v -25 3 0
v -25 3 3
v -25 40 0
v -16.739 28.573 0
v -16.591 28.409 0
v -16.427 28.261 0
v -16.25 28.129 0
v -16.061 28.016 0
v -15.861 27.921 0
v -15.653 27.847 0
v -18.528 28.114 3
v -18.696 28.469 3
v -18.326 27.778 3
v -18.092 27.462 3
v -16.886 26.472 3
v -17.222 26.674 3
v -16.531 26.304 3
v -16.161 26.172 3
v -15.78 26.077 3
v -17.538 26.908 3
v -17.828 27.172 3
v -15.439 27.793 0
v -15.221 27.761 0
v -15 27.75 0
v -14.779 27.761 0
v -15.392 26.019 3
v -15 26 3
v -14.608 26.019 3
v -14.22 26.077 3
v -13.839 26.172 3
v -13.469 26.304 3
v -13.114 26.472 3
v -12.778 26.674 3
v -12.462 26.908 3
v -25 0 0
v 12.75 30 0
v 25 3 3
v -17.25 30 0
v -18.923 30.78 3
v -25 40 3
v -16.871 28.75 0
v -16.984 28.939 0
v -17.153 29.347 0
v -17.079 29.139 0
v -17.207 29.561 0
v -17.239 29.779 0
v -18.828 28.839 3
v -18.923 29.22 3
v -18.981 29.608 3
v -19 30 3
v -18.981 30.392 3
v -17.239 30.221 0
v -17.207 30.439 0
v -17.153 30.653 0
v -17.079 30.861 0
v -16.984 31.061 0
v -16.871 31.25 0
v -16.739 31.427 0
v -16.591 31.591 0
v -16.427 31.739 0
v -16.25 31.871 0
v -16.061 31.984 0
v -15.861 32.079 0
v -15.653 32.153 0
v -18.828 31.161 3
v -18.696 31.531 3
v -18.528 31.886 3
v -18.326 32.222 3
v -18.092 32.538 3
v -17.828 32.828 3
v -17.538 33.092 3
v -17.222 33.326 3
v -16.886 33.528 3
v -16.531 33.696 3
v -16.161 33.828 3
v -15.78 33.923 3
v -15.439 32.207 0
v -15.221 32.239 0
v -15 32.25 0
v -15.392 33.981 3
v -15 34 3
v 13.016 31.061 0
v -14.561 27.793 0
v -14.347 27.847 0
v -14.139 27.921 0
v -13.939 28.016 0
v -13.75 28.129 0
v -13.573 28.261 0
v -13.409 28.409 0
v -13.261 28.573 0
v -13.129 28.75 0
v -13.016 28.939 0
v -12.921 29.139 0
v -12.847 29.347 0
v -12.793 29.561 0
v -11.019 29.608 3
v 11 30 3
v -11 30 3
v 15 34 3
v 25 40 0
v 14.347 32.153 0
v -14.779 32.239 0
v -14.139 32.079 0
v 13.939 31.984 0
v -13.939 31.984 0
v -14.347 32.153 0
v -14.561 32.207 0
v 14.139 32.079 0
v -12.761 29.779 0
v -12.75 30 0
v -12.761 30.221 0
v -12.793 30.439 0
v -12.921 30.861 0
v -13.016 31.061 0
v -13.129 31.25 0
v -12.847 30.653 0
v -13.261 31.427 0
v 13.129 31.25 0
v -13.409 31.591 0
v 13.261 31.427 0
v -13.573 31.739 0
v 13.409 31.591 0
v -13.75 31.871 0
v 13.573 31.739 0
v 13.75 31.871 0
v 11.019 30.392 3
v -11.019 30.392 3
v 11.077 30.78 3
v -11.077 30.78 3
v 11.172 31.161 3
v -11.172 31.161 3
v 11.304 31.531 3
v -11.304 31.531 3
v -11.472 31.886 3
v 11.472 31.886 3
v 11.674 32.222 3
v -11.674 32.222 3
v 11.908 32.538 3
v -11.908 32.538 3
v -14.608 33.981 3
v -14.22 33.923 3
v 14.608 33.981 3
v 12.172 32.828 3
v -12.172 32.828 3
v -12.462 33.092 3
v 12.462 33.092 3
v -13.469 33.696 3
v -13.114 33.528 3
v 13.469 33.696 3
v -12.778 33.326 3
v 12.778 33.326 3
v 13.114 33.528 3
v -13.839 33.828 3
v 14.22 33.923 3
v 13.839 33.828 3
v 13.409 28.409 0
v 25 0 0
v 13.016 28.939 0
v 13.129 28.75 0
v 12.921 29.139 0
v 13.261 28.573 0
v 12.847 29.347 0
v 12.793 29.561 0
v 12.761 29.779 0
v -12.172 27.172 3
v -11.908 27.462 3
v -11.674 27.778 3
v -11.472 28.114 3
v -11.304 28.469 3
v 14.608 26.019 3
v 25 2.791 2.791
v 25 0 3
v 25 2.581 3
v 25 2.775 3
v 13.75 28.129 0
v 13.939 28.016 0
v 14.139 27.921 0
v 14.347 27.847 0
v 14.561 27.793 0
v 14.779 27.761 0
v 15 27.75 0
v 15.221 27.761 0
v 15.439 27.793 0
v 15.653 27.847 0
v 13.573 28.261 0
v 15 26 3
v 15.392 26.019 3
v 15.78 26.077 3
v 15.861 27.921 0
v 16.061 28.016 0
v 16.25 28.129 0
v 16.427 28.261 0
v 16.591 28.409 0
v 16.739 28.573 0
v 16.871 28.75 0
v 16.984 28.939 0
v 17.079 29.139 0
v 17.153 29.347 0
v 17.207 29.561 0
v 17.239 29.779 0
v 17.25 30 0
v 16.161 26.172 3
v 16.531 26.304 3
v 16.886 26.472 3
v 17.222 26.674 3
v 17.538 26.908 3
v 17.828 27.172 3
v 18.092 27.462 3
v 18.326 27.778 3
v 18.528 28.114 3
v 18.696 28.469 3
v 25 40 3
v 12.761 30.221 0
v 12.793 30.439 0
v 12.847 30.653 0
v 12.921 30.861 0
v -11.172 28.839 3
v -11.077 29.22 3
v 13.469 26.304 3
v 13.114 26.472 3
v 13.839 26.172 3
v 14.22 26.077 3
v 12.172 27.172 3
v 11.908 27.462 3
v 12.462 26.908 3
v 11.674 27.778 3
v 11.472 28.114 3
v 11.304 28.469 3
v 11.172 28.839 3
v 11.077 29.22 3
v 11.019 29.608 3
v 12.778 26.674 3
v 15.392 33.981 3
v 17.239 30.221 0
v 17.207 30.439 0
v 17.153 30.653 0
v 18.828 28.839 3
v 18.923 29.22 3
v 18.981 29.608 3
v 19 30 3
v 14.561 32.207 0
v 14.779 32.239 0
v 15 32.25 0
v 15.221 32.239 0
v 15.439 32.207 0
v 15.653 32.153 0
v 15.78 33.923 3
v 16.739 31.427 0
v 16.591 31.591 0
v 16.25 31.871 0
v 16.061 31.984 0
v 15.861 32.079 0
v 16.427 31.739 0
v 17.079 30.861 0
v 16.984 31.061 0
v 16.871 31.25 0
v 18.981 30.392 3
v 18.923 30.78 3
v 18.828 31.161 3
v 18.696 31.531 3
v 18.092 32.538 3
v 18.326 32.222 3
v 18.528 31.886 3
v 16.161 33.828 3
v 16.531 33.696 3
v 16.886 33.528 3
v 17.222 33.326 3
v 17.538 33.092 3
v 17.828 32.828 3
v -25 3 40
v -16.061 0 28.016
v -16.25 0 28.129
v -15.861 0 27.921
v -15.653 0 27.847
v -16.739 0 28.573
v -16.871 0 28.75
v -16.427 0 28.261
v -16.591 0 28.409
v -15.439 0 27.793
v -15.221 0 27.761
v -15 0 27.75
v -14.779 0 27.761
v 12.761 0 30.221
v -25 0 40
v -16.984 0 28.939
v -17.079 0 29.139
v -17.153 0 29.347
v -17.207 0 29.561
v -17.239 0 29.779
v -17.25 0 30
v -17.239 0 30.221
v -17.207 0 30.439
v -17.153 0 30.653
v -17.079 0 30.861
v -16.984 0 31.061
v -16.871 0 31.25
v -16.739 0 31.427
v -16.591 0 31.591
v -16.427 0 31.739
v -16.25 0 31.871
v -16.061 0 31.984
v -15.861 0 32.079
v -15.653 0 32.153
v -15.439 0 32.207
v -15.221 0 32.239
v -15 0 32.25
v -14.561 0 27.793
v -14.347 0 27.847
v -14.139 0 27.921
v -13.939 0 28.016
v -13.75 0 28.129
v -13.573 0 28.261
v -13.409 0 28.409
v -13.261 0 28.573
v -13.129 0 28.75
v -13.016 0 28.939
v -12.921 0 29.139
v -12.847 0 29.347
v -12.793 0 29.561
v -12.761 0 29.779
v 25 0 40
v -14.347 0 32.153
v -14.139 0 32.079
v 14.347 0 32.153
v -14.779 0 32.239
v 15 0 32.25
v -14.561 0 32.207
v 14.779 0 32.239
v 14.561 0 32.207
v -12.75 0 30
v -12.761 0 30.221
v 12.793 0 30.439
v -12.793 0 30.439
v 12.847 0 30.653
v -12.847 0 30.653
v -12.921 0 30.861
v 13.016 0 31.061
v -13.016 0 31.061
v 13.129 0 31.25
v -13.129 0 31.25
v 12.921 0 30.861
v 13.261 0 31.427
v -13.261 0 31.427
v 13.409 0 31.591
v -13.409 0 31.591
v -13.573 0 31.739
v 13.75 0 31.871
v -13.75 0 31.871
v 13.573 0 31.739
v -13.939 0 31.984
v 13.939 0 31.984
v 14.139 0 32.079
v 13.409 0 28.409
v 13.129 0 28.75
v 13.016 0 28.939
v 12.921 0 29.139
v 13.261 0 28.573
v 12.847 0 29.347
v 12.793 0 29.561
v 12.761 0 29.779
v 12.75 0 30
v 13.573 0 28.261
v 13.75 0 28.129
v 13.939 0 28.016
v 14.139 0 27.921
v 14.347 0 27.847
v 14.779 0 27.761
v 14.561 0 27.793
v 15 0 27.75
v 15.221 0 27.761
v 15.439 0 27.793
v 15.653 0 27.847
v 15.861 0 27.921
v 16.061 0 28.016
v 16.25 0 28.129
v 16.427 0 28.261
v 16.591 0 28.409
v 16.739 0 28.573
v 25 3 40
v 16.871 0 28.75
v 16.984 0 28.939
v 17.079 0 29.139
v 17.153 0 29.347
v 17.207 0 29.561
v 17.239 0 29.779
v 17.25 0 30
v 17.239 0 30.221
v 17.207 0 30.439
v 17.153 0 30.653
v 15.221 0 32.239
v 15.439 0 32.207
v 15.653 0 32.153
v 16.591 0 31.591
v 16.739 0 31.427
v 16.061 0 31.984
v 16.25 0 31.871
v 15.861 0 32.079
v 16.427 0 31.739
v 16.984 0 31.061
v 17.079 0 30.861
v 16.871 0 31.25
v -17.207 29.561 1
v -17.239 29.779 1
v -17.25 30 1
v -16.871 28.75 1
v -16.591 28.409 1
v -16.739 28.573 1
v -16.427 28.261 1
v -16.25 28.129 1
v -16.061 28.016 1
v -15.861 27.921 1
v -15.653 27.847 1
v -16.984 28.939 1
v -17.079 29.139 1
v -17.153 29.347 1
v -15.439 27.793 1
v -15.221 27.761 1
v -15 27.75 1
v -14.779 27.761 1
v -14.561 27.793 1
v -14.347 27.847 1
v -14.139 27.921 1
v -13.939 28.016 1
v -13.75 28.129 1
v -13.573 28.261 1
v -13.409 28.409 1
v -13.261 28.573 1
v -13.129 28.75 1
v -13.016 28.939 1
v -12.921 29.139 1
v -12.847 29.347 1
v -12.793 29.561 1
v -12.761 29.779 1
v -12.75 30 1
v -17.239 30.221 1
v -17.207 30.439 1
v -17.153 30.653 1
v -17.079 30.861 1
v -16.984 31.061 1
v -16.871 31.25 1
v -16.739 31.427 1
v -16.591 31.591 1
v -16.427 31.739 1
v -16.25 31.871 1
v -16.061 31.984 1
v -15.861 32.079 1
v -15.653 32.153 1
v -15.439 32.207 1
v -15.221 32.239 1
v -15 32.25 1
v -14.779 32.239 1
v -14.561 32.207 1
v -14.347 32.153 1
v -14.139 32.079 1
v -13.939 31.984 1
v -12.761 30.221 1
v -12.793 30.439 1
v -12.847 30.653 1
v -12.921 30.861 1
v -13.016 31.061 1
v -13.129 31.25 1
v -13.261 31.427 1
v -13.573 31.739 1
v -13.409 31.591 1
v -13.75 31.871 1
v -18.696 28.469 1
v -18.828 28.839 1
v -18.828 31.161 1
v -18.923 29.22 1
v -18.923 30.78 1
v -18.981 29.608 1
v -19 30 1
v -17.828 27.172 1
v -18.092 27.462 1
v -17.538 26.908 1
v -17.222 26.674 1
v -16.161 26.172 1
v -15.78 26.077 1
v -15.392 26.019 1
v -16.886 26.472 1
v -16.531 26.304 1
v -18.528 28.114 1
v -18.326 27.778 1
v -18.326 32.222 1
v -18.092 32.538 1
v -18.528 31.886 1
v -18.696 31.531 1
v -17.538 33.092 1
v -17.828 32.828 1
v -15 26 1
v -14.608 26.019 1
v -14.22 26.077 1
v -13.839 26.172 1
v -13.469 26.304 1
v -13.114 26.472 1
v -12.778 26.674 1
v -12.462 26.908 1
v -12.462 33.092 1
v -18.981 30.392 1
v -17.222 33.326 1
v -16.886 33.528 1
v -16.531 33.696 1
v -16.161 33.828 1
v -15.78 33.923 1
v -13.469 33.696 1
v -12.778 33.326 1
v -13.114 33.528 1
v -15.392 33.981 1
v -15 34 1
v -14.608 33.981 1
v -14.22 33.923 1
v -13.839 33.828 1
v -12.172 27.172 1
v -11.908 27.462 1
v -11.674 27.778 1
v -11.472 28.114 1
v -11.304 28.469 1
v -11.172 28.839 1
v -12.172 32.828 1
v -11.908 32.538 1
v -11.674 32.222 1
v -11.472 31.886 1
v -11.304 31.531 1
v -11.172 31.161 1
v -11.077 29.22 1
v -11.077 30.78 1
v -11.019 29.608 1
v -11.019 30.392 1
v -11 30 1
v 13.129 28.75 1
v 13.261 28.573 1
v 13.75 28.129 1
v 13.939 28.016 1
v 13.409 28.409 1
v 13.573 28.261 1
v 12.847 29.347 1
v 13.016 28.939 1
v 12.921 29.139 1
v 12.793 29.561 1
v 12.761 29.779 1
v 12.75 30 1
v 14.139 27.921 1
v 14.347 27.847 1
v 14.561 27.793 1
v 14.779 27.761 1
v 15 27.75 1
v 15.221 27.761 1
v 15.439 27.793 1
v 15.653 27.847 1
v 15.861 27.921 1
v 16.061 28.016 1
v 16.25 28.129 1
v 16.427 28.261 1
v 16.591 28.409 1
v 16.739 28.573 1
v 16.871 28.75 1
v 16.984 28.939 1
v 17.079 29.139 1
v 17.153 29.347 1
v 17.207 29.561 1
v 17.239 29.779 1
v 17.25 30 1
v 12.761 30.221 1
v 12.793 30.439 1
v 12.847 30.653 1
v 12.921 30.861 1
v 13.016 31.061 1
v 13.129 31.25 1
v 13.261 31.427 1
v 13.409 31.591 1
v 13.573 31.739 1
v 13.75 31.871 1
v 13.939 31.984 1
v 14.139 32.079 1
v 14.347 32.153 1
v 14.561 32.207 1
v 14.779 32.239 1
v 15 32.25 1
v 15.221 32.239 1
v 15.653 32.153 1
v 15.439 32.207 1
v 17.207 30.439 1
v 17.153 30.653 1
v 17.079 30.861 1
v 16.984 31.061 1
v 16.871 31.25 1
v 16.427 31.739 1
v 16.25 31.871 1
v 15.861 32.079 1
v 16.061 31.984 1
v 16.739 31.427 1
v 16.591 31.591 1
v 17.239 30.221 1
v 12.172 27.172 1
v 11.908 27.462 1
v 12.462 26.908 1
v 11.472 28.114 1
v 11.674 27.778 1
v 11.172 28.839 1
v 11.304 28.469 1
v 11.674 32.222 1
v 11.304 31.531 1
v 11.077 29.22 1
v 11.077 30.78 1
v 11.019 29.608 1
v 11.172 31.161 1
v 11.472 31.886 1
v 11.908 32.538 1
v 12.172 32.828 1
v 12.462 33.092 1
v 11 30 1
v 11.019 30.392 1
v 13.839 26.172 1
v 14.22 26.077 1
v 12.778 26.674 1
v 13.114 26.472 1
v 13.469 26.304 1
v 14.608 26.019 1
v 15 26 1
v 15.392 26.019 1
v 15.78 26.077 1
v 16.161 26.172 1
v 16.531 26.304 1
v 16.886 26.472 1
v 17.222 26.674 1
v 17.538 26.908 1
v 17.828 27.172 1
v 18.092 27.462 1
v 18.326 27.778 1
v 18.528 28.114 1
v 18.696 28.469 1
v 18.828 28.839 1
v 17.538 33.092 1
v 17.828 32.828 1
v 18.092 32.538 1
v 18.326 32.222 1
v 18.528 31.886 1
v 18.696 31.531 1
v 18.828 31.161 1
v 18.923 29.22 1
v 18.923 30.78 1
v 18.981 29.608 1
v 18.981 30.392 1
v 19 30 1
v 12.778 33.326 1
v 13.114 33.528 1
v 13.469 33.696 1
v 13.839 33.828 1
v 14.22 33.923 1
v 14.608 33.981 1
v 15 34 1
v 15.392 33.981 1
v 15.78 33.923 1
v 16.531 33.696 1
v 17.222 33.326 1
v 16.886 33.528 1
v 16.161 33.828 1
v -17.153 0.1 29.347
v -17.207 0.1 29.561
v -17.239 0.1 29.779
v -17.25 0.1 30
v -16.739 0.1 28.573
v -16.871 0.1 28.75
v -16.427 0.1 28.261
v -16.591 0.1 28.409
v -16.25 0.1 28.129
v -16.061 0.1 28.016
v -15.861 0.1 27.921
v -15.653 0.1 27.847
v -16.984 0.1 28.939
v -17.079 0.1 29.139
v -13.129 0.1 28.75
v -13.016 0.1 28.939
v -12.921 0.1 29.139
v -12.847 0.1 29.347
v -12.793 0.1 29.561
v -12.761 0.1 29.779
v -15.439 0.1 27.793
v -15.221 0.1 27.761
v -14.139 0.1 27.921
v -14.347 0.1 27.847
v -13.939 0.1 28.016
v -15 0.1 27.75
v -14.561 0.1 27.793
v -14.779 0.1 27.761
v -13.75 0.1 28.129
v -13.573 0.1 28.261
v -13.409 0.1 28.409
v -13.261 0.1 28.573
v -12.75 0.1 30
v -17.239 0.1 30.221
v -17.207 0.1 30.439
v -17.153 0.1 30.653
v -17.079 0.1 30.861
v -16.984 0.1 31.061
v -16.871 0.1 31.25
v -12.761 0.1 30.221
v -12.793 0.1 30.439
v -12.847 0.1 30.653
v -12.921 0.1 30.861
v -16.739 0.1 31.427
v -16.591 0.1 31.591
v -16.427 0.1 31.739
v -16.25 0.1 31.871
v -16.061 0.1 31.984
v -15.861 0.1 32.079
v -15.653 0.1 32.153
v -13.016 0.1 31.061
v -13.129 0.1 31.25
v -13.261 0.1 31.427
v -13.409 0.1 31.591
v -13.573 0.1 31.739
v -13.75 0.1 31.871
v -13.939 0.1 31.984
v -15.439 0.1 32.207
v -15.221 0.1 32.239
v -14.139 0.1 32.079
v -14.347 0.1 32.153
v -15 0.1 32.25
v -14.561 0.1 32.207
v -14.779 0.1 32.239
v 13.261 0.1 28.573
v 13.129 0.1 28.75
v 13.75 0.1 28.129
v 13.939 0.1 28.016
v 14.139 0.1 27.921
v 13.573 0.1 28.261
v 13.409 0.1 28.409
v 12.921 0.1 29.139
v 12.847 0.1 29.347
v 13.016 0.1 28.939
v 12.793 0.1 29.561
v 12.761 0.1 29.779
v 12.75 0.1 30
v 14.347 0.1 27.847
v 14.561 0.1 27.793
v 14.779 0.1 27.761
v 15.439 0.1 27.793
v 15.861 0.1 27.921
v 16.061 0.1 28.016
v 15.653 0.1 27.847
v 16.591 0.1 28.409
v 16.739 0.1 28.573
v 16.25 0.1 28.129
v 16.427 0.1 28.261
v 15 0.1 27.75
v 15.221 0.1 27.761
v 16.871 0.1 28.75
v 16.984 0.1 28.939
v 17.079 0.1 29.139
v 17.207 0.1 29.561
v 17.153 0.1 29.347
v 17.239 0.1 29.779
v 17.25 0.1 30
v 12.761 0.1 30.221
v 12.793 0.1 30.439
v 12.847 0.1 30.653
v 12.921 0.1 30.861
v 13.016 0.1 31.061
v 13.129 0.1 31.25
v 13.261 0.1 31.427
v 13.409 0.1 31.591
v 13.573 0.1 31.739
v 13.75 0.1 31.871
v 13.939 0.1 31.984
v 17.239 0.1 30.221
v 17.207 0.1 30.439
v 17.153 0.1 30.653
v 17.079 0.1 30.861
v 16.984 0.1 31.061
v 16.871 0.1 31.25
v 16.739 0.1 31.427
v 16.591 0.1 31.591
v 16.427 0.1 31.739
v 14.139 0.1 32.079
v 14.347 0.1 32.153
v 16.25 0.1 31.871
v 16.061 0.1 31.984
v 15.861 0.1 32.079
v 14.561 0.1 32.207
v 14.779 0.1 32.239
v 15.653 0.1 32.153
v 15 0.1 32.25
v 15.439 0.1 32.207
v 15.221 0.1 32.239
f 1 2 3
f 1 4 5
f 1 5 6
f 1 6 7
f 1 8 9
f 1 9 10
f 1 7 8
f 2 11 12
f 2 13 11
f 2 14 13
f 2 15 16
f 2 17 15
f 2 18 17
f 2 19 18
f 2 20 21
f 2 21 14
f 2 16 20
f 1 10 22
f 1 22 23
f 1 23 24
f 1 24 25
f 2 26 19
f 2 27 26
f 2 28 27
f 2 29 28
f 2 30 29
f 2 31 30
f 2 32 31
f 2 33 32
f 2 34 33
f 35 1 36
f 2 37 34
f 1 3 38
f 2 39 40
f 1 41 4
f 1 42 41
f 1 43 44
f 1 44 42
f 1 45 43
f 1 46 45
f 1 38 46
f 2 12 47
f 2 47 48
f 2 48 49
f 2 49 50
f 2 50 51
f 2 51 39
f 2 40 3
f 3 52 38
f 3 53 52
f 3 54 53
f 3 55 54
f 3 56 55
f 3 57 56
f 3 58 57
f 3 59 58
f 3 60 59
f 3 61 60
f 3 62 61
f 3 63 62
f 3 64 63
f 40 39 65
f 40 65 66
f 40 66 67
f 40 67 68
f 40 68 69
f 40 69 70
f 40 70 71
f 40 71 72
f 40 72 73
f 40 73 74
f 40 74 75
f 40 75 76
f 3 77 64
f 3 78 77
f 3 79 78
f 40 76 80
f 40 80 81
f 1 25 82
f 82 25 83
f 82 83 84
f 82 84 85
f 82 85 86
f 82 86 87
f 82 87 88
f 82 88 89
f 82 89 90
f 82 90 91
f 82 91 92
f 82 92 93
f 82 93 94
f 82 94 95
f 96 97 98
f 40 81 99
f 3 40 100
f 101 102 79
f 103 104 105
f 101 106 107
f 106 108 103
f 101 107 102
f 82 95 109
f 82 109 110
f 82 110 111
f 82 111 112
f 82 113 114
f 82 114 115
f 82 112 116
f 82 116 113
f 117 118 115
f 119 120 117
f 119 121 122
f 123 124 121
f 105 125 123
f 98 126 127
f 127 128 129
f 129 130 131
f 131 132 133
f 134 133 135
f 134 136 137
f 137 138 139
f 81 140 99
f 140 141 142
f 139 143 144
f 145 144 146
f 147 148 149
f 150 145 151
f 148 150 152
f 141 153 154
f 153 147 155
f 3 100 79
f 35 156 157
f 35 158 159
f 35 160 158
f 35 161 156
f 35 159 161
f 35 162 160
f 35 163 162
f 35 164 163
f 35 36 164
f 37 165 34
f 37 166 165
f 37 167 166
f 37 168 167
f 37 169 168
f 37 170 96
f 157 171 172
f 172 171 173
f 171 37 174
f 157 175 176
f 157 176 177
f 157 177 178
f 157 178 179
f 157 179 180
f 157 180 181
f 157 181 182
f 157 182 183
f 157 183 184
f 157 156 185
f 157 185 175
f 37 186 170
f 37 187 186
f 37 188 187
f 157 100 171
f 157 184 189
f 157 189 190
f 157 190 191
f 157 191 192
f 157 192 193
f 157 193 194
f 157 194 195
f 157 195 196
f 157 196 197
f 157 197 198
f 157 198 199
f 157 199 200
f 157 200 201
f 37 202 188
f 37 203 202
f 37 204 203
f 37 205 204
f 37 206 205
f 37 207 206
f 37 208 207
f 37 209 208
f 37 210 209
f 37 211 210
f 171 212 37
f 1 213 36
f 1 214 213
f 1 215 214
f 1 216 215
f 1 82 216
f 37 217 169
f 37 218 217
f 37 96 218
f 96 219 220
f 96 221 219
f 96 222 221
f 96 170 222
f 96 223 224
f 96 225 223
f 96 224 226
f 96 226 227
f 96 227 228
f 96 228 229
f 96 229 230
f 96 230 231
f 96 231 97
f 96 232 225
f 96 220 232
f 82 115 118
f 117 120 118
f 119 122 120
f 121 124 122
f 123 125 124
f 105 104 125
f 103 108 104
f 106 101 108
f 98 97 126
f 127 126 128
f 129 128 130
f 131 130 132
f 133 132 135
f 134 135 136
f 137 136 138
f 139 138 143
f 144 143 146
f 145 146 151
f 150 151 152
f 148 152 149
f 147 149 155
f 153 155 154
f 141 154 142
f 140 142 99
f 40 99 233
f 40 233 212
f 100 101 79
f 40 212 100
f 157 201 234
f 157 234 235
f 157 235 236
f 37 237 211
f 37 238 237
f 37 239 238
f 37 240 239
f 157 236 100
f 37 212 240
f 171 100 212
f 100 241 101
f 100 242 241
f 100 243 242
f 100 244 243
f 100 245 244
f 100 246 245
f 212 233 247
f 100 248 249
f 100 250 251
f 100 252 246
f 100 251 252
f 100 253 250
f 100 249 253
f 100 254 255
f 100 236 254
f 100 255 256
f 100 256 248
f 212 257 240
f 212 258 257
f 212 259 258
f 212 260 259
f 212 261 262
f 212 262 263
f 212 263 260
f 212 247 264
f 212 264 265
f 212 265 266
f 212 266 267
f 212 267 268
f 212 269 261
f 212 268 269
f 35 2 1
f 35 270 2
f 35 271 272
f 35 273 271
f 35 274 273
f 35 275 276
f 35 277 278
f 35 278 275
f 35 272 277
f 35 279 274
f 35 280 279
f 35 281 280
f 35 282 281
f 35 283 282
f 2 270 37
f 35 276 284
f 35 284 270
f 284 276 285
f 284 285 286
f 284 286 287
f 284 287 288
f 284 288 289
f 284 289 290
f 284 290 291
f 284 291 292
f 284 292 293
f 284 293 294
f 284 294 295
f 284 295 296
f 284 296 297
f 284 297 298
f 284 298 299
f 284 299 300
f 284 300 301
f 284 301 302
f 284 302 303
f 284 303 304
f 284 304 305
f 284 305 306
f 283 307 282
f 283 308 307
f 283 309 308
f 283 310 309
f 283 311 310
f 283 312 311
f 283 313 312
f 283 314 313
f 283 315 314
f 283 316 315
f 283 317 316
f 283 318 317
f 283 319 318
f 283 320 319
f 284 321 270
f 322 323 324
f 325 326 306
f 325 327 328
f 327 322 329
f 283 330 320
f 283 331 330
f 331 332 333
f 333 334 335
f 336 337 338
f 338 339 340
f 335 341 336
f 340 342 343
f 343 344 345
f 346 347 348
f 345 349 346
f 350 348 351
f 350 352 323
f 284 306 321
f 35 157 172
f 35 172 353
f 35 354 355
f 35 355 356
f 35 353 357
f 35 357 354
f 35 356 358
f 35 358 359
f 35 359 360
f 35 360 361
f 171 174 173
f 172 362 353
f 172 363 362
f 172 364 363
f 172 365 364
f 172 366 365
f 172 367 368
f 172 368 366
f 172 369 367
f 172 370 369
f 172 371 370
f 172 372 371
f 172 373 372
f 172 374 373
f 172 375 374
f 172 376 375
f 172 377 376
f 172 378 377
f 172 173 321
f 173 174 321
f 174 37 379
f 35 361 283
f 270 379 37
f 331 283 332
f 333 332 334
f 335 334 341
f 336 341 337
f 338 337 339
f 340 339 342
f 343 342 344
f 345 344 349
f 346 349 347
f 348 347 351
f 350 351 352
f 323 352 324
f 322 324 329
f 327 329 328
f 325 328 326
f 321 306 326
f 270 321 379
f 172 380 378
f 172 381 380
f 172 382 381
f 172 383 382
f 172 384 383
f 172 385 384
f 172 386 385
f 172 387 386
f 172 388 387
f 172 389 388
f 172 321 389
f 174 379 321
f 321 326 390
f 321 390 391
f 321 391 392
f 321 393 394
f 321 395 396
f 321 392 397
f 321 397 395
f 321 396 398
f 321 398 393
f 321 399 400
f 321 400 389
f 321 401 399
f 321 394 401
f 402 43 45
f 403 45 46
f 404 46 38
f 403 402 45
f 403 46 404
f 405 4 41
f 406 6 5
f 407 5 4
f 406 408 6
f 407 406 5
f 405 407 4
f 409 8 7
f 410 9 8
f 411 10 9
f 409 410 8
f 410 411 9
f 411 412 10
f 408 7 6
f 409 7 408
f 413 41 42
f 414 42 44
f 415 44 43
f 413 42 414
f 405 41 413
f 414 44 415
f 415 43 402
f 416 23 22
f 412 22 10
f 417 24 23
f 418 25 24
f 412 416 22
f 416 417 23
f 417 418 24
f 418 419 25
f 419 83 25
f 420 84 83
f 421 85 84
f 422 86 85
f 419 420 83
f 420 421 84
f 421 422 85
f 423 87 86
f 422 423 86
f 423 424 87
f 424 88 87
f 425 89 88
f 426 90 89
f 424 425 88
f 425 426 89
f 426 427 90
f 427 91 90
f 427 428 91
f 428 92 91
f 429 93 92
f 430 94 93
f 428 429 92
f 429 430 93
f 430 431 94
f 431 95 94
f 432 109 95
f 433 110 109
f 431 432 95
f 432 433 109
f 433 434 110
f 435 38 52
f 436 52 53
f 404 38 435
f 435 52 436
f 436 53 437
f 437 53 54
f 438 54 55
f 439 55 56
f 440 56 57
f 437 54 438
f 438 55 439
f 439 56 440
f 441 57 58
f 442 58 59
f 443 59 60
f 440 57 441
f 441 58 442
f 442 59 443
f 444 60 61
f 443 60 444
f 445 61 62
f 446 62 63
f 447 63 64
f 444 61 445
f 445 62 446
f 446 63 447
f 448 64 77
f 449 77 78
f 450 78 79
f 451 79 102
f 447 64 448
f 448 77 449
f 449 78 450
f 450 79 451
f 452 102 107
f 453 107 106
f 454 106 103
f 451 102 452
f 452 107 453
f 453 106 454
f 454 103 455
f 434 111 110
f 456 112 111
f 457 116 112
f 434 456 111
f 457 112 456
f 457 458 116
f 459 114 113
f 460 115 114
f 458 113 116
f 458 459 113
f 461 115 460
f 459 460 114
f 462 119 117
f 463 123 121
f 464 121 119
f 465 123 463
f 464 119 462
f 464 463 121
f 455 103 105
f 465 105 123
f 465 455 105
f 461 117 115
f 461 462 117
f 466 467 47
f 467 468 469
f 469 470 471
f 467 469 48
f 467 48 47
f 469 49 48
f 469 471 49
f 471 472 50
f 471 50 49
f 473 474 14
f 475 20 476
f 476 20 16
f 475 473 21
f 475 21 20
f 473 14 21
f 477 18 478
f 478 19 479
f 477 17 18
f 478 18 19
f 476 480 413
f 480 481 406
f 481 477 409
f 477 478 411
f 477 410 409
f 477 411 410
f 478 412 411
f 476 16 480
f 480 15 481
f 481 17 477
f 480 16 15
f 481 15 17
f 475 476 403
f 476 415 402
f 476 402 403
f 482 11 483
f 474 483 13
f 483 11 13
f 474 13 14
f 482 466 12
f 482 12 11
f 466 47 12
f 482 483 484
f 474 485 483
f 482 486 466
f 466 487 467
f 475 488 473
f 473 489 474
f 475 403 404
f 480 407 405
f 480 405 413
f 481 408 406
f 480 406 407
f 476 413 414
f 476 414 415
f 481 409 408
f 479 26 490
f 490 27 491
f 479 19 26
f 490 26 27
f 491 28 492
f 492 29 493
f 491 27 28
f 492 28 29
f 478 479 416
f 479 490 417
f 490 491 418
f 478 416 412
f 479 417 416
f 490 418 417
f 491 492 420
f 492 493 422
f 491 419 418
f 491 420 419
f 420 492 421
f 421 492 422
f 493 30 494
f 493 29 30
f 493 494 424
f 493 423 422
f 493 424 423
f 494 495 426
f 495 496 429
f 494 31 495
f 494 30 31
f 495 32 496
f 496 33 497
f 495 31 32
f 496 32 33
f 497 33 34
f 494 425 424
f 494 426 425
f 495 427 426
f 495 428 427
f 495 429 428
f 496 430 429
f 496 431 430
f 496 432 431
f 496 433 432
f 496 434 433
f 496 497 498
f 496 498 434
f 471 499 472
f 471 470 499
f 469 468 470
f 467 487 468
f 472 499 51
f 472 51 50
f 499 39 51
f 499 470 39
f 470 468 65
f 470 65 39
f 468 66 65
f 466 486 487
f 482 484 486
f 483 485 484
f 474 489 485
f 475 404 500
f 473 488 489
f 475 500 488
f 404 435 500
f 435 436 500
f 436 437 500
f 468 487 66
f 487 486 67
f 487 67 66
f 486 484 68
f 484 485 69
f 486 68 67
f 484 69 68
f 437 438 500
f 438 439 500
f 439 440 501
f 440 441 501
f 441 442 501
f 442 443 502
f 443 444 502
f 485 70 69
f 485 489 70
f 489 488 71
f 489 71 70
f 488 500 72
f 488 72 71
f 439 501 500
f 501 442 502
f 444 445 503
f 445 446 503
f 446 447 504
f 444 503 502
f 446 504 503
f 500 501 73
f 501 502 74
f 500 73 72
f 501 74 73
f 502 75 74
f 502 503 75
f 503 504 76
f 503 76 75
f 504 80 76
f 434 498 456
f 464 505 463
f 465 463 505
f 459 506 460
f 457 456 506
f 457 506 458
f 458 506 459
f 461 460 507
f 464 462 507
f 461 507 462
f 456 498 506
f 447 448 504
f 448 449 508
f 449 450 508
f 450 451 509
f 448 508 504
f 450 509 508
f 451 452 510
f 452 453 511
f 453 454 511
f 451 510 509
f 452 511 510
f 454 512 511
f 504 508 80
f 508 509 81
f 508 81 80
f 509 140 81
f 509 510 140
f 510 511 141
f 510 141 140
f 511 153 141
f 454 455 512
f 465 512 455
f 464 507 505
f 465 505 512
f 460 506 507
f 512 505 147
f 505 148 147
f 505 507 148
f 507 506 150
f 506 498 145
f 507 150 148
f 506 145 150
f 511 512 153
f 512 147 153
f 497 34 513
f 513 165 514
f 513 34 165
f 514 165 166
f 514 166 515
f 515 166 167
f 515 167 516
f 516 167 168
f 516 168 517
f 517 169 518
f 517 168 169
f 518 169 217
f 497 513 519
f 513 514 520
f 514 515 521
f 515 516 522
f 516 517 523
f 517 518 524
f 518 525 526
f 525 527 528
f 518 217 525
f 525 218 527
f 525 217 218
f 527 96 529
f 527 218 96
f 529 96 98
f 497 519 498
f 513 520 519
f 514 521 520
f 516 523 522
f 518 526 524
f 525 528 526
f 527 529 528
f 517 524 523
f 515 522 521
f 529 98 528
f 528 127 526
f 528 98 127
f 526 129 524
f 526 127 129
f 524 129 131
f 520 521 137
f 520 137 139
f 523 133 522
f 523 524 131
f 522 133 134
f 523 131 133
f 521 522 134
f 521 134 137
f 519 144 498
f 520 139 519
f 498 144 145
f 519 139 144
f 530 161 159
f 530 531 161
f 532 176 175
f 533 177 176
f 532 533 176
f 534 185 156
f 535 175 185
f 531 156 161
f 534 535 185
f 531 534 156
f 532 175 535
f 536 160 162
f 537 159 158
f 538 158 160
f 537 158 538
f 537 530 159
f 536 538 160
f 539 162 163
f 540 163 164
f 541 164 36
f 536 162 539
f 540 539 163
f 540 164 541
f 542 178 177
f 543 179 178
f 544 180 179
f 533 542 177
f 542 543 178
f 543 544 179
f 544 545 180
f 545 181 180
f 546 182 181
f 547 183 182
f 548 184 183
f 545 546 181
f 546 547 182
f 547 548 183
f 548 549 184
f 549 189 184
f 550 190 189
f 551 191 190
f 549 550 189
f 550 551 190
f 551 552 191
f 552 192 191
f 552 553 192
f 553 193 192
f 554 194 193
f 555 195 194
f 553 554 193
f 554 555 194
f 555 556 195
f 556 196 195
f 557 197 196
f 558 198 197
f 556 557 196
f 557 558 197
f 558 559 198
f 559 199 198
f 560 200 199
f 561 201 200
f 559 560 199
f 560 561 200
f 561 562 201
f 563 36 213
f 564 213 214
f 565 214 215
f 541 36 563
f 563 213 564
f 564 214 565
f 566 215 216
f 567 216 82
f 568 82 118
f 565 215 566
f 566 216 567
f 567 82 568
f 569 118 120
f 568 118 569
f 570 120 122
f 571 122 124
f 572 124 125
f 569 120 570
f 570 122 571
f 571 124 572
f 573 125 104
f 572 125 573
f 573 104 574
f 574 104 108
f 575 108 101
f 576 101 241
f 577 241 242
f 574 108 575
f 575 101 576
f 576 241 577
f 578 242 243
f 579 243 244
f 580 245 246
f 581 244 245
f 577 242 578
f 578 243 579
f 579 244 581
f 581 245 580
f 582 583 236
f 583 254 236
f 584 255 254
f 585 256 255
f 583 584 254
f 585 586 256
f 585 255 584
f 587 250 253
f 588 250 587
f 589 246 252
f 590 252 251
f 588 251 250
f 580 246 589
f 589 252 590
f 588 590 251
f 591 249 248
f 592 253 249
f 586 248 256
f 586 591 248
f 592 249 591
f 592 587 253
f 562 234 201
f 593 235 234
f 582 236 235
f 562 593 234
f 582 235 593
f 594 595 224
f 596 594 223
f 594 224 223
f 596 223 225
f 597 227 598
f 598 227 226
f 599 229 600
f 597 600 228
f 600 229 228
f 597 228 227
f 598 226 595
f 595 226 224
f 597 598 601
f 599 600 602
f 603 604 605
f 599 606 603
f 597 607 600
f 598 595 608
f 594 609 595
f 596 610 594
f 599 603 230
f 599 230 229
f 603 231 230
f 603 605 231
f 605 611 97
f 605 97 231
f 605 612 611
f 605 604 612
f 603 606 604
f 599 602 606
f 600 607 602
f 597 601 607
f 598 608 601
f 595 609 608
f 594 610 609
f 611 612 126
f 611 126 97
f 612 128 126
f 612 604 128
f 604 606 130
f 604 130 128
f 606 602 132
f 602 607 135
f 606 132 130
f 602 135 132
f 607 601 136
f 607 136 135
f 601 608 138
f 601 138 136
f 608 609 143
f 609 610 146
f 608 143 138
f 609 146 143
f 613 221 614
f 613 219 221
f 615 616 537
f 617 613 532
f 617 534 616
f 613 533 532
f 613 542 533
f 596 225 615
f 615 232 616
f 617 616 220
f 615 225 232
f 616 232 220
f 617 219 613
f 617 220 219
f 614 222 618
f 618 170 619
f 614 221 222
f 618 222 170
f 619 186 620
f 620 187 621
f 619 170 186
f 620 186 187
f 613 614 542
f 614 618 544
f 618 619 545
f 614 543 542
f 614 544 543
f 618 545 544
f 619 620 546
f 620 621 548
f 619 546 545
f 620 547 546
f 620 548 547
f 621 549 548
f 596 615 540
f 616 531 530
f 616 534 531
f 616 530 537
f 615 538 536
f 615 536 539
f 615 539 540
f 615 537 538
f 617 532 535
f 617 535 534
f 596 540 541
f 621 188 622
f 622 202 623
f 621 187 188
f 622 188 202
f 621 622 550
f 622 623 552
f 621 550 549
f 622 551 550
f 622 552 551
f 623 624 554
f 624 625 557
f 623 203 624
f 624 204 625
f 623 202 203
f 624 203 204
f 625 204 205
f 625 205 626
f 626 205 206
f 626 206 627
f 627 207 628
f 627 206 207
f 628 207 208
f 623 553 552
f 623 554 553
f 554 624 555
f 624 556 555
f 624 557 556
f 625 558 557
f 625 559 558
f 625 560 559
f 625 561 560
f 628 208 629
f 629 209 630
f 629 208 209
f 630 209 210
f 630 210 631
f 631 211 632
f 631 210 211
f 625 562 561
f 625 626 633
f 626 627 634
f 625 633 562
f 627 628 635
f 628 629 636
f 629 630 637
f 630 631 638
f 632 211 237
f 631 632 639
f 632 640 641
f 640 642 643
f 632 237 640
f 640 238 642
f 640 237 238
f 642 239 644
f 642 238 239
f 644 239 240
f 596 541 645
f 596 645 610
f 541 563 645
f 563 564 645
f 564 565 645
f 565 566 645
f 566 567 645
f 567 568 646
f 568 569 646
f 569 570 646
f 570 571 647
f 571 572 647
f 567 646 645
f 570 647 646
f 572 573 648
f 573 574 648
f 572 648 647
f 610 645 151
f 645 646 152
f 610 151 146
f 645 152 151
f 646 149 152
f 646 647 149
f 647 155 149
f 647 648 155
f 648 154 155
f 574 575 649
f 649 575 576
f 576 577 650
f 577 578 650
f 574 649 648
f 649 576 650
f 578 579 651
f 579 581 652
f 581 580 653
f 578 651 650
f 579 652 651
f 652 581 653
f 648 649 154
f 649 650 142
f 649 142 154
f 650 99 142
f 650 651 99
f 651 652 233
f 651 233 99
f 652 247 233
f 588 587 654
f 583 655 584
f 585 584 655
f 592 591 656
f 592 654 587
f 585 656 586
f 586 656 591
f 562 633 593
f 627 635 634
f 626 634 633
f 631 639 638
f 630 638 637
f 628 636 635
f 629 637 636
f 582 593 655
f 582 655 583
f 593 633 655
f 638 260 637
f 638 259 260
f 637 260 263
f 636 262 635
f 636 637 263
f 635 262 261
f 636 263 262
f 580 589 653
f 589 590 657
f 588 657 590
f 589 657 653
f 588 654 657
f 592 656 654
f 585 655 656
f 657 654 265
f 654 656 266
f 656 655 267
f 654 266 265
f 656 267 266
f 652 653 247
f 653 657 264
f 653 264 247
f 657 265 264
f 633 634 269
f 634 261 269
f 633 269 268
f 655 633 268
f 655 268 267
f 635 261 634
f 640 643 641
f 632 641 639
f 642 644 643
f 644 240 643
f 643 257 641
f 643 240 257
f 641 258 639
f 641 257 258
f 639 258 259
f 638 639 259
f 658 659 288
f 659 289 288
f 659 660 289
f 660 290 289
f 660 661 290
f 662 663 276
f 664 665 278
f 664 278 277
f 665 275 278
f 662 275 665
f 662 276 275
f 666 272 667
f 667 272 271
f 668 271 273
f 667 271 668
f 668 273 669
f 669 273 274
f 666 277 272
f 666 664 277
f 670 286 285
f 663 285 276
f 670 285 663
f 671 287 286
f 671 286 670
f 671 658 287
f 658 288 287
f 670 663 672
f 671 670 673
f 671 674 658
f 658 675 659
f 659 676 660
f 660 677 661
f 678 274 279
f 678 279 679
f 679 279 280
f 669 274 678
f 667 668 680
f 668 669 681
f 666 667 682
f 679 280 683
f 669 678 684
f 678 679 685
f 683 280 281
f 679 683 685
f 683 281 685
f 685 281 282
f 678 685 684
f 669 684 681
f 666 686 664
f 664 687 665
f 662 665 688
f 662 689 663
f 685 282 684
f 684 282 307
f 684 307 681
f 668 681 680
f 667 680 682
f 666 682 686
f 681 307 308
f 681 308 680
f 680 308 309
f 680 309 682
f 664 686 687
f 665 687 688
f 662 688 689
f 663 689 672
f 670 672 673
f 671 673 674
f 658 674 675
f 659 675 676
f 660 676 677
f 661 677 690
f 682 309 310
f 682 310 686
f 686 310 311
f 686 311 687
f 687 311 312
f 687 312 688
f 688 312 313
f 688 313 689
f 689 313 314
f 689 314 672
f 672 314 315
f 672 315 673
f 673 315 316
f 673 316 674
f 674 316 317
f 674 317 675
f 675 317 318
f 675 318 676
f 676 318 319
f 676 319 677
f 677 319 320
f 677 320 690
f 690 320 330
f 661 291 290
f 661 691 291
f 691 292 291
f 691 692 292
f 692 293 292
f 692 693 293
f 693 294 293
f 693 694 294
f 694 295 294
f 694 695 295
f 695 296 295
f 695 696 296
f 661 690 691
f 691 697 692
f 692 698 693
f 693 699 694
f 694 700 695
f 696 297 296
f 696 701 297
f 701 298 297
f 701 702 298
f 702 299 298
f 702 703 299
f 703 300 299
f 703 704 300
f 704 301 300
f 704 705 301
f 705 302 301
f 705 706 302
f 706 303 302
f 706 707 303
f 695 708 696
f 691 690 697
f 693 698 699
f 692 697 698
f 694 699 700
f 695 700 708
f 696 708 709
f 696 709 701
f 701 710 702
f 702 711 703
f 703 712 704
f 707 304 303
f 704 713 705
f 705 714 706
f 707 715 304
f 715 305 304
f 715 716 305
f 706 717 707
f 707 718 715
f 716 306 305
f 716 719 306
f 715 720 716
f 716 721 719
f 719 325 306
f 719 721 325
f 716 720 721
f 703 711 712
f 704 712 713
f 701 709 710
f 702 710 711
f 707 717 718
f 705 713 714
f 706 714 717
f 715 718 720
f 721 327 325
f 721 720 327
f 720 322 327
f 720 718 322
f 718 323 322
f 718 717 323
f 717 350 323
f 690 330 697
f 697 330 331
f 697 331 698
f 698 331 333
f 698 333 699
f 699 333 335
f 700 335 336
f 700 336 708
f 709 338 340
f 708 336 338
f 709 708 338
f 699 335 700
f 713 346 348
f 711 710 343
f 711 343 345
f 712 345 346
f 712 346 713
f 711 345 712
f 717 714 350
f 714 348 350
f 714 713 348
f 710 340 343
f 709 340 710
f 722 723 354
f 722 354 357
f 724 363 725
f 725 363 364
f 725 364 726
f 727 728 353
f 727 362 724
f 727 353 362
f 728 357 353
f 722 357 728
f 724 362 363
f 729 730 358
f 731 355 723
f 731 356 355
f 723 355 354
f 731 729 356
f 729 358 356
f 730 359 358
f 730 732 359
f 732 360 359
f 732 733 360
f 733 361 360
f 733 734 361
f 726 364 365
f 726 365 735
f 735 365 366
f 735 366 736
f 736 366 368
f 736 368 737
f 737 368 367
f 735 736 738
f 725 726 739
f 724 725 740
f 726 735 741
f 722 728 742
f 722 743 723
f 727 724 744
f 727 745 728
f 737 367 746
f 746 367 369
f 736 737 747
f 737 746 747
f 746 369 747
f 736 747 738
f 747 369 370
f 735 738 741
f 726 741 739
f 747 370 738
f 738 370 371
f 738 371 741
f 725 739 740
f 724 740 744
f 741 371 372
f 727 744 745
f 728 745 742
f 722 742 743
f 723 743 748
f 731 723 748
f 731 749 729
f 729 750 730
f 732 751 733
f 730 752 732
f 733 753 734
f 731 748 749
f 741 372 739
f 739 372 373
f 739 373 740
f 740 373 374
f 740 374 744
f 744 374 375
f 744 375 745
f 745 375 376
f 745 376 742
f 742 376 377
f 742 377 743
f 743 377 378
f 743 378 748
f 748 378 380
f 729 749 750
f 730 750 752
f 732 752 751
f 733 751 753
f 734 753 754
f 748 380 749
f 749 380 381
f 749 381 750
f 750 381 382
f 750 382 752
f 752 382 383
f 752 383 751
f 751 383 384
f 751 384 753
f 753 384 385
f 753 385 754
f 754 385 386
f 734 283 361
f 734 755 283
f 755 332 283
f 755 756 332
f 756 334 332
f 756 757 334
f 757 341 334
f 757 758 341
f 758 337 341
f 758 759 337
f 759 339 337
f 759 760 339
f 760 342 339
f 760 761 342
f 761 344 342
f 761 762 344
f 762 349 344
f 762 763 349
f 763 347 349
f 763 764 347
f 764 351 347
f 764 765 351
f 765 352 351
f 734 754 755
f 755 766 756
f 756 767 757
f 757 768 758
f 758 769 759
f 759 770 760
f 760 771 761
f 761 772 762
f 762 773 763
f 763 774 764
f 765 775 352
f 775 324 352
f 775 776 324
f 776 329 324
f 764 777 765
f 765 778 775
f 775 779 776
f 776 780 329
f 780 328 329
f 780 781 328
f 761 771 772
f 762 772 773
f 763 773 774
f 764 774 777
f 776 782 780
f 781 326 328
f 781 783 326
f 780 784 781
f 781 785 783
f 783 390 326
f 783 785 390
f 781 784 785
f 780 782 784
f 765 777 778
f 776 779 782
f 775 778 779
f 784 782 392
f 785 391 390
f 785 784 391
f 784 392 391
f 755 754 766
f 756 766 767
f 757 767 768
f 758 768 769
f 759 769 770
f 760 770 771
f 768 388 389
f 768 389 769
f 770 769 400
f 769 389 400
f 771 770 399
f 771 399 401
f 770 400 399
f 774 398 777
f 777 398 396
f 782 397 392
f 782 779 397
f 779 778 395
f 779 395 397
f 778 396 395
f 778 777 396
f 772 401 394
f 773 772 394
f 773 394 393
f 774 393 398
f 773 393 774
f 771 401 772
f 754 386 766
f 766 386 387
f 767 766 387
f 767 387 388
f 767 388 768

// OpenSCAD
// L-bracket with countersunk holes
w = 50;          // width (X)
d = 40;          // depth of horizontal flange (Y)
h = 40;          // height of vertical flange (Z)
t = 3;           // thickness
eps = 0.1;

thru_d = 4.5;    // through hole diameter for M4
csk_d  = 8;      // countersink diameter
csk_h  = 2;      // countersink depth

// Hole placement
hx = w/2 - 10;   // X offset from center to be 10mm in from side edges
hy = d - 10;     // Y position for horizontal flange holes (10mm from free edge)
hz = h - 10;     // Z position for vertical flange holes (10mm from free edge)

difference() {
  // Bracket solid: inner corner at origin; horizontal +Y, vertical +Z
  union() {
    // Horizontal flange (X: -25..25, Y: 0..40, Z: 0..3)
    translate([-w/2, 0, 0]) cube([w, d, t], center=false);
    // Vertical flange (X: -25..25, Y: 0..3, Z: 0..40)
    translate([-w/2, 0, 0]) cube([w, t, h], center=false);
  }

  // Holes on horizontal flange (axis along Z)
  for (xsign = [-1, 1]) {
    translate([xsign*hx, hy, 0]) {
      // through hole
      translate([0, 0, -eps]) cylinder(d=thru_d, h=t+2*eps, $fn=64);
      // countersink from top (+Z) side, depth csk_h
      translate([0, 0, t - csk_h]) cylinder(d=csk_d, h=csk_h+eps, $fn=64);
    }
  }

  // Holes on vertical flange (axis along Y)
  for (xsign = [-1, 1]) {
    translate([xsign*hx, 0, hz]) {
      // through hole
      rotate([90, 0, 0]) translate([0, 0, -eps]) cylinder(d=thru_d, h=t+2*eps, $fn=64);
      // countersink from outside (+Y) side, depth csk_h
      rotate([90, 0, 0]) translate([0, 0, t - csk_h]) cylinder(d=csk_d, h=csk_h+eps, $fn=64);
    }
  }
}
